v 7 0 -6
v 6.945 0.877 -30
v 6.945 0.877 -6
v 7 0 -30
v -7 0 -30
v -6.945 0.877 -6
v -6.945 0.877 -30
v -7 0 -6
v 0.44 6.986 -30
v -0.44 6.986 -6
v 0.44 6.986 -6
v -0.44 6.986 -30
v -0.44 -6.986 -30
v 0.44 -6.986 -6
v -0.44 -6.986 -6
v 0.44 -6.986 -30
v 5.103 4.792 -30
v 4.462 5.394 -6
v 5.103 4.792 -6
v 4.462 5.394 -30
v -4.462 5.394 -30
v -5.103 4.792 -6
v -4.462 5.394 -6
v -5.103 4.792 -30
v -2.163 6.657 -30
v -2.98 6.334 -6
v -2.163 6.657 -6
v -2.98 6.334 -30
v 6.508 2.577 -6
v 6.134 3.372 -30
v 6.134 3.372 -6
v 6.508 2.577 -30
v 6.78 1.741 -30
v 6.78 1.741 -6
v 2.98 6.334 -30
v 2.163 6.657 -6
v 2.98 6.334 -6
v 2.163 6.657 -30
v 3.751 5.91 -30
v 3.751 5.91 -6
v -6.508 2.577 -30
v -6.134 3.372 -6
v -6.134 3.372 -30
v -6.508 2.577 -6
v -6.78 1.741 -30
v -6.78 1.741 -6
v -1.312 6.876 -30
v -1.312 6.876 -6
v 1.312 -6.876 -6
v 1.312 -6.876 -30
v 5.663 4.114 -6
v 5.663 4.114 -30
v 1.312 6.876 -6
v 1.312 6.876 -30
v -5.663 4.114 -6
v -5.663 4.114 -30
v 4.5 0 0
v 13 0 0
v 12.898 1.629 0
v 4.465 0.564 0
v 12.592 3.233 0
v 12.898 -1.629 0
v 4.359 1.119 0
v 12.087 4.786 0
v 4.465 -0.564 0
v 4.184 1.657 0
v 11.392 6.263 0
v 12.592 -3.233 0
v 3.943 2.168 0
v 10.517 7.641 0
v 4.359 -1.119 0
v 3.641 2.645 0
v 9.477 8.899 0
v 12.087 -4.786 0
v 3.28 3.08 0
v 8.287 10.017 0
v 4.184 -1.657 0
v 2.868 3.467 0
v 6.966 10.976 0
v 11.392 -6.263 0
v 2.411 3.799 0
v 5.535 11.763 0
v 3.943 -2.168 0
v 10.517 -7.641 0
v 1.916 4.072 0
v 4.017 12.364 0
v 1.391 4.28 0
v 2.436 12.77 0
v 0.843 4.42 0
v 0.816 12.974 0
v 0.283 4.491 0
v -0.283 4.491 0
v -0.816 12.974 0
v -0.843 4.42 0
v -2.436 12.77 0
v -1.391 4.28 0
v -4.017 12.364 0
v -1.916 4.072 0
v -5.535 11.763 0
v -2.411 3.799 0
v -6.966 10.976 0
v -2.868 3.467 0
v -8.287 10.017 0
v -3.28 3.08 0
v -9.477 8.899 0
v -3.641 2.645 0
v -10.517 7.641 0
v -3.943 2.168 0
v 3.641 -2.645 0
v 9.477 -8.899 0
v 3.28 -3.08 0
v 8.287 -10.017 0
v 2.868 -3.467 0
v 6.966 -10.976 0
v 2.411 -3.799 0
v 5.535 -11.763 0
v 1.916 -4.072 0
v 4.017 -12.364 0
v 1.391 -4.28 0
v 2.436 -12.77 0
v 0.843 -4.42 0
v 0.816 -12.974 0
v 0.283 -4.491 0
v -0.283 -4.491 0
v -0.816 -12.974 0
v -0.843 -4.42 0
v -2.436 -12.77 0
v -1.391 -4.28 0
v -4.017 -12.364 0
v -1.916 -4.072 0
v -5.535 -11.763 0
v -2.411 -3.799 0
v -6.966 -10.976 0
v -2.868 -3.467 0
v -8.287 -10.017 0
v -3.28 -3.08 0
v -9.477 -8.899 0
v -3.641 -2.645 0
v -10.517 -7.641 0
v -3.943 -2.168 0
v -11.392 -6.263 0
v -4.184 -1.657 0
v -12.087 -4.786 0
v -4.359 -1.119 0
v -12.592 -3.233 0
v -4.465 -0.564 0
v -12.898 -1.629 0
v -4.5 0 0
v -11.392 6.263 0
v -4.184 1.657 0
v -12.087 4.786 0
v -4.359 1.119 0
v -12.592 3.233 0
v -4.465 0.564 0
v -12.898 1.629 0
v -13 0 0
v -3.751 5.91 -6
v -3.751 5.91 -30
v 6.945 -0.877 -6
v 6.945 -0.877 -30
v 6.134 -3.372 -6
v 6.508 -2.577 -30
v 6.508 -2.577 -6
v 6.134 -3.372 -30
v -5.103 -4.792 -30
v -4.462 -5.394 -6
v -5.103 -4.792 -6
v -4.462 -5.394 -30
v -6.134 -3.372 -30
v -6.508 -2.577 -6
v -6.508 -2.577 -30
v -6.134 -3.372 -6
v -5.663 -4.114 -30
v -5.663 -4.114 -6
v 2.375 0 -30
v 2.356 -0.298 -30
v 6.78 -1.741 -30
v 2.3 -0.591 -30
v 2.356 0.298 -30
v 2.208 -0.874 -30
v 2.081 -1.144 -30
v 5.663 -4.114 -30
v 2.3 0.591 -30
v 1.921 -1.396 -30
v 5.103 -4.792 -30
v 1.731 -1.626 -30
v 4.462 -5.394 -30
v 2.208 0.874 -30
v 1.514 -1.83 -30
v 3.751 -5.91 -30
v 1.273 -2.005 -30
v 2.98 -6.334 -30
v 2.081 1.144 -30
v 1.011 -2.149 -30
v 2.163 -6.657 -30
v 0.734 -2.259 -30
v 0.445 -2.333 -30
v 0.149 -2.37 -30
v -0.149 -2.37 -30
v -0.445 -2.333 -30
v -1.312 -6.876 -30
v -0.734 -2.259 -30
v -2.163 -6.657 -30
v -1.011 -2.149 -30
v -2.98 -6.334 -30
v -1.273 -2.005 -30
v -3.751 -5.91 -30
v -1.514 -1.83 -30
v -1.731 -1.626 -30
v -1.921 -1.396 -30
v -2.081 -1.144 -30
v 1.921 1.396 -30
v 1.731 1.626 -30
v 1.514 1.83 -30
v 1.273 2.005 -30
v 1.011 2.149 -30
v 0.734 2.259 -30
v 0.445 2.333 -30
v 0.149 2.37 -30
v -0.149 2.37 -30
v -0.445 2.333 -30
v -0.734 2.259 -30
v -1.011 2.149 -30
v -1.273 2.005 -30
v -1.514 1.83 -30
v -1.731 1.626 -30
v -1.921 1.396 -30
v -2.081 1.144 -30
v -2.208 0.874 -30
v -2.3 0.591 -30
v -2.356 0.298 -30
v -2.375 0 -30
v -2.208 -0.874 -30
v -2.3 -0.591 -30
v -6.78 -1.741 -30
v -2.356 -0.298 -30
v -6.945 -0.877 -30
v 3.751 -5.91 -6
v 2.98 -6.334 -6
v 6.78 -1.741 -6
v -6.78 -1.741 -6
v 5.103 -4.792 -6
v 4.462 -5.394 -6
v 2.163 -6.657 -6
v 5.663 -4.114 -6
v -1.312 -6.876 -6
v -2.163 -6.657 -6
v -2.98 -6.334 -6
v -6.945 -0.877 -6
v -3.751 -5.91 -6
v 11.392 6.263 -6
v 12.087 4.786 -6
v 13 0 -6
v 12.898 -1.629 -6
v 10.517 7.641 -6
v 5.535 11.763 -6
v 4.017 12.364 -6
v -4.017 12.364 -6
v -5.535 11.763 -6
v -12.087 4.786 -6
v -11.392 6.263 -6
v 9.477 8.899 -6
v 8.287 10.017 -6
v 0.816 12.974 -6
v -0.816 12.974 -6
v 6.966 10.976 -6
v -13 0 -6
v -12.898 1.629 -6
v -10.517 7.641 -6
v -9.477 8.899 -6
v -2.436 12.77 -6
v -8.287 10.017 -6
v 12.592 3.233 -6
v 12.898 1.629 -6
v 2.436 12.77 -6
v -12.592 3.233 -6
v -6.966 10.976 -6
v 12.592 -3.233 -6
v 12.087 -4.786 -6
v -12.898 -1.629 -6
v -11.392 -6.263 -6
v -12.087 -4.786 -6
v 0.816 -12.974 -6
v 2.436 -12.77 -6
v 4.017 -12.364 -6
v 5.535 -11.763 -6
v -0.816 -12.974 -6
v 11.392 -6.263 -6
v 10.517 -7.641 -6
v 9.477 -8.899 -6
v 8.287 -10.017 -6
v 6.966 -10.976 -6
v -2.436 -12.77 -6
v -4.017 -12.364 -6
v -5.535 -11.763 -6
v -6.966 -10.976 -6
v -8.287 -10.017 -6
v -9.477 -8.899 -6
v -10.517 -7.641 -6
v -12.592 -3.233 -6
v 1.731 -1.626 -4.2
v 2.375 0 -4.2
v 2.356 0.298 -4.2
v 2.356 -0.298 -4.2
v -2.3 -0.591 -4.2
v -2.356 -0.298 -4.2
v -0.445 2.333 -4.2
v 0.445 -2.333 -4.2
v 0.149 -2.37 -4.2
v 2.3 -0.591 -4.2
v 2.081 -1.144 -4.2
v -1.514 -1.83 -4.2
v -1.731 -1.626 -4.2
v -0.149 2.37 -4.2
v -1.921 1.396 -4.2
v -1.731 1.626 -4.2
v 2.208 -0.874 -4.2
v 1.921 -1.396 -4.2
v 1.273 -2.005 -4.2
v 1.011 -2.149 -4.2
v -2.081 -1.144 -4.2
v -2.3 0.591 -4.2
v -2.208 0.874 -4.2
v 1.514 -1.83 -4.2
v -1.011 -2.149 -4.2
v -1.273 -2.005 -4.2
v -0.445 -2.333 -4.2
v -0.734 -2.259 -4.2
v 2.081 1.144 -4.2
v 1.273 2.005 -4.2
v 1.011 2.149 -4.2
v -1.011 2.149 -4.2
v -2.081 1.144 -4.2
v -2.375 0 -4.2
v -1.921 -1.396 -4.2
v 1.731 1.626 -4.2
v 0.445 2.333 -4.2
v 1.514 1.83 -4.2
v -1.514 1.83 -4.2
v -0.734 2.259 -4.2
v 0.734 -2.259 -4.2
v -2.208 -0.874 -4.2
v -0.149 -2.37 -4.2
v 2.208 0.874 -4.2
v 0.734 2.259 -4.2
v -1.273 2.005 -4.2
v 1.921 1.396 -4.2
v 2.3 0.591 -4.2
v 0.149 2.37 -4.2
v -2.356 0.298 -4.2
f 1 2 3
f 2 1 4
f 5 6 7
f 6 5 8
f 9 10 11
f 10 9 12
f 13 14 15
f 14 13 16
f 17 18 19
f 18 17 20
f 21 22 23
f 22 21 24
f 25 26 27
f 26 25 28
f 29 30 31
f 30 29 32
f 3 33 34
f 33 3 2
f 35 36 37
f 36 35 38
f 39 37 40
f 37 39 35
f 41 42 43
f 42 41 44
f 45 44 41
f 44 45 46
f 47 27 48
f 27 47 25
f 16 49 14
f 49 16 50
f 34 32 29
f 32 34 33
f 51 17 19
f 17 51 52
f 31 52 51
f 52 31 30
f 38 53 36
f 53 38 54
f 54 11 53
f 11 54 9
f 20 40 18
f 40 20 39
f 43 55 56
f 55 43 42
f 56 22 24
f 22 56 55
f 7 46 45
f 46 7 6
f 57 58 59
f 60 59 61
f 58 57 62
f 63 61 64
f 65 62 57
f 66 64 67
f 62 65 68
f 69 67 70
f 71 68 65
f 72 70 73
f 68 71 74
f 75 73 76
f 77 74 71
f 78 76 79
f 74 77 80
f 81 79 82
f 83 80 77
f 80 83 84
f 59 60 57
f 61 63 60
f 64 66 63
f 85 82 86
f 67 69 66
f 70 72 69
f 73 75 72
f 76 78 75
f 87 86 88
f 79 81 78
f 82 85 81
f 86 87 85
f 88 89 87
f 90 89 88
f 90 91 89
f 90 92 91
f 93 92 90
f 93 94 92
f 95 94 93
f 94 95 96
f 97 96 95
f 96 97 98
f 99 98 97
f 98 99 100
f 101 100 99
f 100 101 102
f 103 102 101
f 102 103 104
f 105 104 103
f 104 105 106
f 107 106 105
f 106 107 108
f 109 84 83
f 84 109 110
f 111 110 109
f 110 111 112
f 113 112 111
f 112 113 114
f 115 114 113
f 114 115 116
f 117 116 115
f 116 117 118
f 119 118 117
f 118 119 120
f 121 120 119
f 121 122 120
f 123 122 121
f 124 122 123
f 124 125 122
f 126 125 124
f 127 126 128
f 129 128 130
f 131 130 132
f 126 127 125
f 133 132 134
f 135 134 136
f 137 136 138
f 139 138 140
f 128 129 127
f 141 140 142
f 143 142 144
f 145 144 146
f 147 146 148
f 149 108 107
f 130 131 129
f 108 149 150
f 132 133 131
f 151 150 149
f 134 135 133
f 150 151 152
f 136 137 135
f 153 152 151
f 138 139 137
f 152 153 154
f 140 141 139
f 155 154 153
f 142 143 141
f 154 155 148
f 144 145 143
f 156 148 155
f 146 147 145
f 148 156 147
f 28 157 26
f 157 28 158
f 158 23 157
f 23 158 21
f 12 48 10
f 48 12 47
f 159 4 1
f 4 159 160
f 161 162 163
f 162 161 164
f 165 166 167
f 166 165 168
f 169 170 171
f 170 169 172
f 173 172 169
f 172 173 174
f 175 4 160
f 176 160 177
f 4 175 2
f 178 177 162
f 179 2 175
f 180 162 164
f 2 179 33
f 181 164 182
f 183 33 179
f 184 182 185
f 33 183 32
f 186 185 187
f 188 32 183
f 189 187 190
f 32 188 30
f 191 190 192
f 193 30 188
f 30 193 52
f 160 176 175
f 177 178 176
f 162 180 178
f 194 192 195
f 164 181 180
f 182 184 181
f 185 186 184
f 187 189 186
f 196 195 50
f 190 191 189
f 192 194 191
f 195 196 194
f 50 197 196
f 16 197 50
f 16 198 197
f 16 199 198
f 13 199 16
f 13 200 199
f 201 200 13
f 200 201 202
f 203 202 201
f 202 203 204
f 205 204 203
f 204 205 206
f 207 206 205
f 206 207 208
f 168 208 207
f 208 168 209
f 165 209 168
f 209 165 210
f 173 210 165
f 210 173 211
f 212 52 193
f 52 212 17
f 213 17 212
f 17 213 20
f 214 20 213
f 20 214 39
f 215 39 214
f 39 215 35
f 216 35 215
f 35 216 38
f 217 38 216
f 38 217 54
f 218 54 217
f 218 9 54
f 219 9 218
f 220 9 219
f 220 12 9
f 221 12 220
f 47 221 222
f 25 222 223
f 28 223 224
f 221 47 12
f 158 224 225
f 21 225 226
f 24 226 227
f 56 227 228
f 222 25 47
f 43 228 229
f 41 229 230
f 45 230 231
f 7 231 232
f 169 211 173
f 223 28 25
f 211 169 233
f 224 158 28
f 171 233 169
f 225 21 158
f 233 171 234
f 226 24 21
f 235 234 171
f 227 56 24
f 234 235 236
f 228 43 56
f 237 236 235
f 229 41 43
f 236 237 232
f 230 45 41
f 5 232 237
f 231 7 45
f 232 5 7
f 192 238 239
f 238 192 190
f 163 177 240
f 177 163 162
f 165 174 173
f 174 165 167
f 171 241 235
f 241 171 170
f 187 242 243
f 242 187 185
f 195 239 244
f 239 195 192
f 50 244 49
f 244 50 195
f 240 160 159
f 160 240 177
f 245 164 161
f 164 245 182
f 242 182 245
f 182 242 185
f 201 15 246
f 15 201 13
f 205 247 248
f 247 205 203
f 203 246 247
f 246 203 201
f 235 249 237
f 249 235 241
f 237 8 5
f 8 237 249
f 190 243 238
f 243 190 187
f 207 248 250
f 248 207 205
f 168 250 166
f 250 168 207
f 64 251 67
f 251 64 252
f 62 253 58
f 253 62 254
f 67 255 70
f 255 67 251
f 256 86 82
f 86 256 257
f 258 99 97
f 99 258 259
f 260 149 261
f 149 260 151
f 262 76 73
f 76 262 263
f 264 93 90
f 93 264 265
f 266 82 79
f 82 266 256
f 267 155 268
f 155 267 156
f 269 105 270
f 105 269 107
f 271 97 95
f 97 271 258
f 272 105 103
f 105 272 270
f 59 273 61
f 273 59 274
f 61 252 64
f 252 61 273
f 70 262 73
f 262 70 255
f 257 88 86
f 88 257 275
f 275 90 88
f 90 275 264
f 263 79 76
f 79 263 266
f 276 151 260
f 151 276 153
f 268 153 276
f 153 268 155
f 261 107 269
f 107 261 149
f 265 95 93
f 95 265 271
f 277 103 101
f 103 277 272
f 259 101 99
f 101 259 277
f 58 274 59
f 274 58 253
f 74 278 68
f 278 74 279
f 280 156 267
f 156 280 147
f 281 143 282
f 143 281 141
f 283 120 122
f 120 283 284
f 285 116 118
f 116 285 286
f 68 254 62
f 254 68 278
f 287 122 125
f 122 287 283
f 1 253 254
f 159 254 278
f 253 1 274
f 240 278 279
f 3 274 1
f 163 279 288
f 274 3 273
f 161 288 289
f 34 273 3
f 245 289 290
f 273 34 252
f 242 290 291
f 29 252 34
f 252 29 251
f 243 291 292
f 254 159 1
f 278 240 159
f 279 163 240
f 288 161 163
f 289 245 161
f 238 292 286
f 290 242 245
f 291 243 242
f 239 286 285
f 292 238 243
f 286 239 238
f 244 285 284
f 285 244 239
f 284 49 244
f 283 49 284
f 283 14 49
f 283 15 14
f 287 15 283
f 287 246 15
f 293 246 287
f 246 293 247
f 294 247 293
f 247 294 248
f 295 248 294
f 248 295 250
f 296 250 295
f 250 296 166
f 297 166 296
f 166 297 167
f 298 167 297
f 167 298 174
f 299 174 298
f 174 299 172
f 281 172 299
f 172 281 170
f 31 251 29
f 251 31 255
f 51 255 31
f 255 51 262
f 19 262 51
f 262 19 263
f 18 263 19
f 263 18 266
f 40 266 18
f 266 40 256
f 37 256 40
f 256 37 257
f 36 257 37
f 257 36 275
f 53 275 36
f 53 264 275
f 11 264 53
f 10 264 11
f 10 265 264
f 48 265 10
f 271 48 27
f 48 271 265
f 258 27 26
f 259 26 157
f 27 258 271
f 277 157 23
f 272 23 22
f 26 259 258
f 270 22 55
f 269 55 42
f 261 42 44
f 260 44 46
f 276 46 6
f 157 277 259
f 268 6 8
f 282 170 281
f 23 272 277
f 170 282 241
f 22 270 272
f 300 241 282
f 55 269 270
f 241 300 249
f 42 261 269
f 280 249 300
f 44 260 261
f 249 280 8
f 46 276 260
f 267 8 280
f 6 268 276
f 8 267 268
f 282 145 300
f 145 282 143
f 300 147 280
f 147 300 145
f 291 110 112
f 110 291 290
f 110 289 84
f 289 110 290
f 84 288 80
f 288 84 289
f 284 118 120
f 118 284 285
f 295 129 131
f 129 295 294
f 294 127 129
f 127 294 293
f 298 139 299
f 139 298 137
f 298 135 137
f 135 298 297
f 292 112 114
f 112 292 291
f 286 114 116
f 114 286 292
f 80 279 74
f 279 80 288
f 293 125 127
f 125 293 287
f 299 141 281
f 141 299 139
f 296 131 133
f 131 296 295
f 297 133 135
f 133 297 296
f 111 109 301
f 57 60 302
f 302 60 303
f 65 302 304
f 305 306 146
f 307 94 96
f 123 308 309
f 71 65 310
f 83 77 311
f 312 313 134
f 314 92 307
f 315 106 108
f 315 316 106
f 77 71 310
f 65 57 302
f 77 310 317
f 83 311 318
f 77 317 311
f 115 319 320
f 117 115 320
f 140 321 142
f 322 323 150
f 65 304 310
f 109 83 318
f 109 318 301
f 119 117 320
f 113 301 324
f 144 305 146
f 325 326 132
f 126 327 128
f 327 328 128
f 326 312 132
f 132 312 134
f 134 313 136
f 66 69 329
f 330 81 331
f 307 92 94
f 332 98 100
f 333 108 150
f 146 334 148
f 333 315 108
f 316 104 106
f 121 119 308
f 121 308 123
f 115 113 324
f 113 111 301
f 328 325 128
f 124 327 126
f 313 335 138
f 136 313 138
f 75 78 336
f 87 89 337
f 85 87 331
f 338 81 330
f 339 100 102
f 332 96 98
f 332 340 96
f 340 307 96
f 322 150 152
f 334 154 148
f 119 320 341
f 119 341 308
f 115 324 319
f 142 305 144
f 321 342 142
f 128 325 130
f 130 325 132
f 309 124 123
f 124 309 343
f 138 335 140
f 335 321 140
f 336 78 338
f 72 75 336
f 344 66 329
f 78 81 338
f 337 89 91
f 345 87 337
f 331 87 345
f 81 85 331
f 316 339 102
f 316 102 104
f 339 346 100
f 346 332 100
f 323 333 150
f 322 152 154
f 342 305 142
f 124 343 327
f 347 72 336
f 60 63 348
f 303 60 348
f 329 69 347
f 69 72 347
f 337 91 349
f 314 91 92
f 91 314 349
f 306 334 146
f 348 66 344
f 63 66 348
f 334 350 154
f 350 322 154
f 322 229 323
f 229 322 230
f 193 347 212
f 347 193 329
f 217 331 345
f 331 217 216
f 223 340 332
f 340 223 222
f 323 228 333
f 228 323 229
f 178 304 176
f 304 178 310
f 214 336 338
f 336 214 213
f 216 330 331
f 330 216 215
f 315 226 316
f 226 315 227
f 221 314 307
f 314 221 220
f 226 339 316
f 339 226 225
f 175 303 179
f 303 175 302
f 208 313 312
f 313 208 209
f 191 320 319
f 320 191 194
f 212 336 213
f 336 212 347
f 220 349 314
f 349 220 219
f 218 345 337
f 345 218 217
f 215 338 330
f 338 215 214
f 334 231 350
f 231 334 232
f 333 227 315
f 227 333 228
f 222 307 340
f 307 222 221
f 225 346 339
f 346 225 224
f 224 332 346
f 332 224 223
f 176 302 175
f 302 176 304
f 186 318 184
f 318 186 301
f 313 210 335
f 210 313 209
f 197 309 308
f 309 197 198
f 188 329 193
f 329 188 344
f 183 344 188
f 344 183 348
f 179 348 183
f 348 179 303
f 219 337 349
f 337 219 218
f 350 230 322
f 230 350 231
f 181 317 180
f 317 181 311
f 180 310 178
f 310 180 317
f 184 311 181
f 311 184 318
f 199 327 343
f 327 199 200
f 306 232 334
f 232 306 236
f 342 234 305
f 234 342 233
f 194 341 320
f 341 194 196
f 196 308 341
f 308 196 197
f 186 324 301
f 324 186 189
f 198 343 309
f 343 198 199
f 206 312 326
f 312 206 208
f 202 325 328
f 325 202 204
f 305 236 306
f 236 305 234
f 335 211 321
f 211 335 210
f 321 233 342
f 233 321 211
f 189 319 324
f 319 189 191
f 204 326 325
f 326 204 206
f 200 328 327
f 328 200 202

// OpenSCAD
$fn = 50;


difference() {
	union() {
		translate(v = [0, 0, -30.0000000000]) {
			cylinder(h = 30, r = 7.0000000000);
		}
		translate(v = [0, 0, -6.0000000000]) {
			cylinder(h = 6, r = 13.0000000000);
		}
	}
	union() {
		translate(v = [0, 0, 0]) {
			rotate(a = [0, 0, 0]) {
				difference() {
					union() {
						#translate(v = [0, 0, -30.0000000000]) {
							cylinder(h = 30, r = 2.2500000000);
						}
						#translate(v = [0, 0, -4.2000000000]) {
							cylinder(h = 4.2000000000, r1 = 2.3750000000, r2 = 4.5000000000);
						}
						#translate(v = [0, 0, -30.0000000000]) {
							cylinder(h = 30, r = 2.3750000000);
						}
						#translate(v = [0, 0, -30.0000000000]) {
							cylinder(h = 30, r = 2.2500000000);
						}
					}
					union();
				}
			}
		}
	}
}
